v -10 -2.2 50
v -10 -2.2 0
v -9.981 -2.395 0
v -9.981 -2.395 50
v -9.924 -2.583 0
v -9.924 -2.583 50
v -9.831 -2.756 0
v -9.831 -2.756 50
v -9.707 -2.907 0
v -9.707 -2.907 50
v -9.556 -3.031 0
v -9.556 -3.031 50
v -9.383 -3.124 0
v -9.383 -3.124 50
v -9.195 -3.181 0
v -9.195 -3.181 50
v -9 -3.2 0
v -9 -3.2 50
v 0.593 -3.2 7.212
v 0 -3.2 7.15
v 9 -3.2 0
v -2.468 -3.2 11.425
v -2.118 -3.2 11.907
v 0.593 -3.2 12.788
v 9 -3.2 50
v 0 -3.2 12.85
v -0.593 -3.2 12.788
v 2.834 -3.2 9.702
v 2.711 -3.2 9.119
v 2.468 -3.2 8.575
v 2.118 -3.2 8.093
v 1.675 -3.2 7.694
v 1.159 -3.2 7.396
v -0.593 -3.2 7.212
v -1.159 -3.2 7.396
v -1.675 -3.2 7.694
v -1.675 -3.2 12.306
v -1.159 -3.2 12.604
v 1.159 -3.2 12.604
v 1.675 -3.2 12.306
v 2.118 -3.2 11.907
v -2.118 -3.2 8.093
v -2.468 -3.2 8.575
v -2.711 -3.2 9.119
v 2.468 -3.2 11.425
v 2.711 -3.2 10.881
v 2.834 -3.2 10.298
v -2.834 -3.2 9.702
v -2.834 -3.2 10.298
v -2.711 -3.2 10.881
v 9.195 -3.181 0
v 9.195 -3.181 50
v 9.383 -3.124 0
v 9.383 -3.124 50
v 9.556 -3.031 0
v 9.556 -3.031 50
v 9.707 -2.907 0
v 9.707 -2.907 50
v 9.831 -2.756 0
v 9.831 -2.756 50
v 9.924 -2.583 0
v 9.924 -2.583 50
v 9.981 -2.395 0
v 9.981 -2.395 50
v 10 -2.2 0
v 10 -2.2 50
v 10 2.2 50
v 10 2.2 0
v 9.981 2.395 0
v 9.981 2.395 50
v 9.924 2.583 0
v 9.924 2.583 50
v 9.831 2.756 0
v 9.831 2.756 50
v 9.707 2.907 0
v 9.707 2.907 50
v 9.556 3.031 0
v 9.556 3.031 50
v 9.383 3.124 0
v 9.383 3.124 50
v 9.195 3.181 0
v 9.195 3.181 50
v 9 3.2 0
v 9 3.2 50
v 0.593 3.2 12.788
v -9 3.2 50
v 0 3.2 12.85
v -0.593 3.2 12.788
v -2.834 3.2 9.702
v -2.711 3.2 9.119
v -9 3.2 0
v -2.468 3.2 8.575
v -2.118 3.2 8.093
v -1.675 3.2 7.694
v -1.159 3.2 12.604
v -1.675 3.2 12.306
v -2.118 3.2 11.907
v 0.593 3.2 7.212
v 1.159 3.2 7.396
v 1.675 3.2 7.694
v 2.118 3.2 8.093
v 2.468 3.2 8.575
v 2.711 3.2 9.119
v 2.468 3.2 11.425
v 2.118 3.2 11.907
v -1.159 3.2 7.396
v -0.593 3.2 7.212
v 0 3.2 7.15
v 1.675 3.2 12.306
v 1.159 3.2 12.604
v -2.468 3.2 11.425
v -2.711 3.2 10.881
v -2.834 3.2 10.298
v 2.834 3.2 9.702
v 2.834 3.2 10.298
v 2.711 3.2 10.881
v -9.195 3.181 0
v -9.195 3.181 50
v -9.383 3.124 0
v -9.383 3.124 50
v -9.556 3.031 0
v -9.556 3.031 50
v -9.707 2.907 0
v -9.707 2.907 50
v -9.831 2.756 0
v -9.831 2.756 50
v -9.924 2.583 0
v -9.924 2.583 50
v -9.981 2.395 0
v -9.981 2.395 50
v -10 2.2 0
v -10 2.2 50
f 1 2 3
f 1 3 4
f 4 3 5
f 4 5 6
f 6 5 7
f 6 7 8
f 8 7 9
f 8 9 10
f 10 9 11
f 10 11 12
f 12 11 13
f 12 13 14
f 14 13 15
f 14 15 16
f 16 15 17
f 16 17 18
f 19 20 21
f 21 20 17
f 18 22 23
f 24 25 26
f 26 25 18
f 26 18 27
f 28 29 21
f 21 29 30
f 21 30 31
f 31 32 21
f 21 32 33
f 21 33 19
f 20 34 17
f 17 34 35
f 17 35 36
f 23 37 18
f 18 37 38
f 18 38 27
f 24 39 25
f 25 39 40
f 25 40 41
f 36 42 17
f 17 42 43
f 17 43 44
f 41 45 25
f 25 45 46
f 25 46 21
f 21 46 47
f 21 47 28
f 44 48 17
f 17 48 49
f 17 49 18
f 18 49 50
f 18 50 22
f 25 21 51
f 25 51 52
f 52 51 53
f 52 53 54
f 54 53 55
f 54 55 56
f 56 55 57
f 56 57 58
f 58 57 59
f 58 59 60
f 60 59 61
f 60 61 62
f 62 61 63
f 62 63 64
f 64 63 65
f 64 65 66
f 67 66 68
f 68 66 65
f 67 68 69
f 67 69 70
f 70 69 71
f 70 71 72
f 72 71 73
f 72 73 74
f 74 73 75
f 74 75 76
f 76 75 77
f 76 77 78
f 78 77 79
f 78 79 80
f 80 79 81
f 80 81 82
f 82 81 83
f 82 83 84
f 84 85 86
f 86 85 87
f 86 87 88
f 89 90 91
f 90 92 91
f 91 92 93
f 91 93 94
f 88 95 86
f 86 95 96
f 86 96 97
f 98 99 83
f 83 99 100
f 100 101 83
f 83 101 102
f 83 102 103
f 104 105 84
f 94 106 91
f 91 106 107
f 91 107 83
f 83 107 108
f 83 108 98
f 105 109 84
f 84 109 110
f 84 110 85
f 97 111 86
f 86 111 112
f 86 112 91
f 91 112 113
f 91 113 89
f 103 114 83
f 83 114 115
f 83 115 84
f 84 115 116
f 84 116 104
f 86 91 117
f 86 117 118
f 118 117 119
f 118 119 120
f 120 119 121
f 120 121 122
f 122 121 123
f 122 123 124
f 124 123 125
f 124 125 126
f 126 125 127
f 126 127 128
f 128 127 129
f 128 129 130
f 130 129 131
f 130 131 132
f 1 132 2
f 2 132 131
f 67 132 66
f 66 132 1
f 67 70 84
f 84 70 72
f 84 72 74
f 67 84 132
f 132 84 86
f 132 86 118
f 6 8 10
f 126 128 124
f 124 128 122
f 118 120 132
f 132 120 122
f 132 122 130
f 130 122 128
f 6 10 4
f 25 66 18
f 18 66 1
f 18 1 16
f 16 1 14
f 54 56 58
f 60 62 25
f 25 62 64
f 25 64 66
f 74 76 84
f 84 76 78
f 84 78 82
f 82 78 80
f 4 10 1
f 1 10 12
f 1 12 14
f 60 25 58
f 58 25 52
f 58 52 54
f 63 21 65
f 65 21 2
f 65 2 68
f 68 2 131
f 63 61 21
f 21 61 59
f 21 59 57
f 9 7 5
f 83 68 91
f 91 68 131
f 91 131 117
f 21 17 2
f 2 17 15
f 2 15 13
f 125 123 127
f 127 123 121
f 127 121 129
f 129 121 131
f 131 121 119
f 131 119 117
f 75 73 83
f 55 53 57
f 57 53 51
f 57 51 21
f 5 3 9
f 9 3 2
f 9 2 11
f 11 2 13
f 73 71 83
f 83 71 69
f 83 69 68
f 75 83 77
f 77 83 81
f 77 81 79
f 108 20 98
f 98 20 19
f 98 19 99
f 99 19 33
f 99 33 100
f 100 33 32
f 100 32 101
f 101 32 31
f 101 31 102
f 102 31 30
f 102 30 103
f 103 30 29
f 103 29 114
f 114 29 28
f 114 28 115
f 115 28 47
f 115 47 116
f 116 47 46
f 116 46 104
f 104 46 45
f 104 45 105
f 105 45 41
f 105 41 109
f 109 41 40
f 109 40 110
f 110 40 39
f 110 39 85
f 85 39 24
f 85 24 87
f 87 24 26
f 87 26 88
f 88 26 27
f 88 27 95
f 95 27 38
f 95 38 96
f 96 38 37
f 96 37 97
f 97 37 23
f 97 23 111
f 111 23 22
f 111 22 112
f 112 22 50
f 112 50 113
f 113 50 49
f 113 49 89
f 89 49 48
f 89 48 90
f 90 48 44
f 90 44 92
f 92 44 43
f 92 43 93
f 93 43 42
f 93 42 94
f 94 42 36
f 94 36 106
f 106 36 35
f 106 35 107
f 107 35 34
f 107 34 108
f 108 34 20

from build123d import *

# Parameters (mm, degrees)
BOSS_EXTRUDE1_DEPTH = 50
SKETCH2_R           = 2.85
CUT_EXTRUDE1_DEPTH  = 8


with BuildPart() as part:
    # Sketch1 → Boss-Extrude1 (new body)
    with BuildSketch(Plane.XY):
        with BuildLine():
            Line((-9, -3.2), (9, -3.2))
            ThreePointArc((9, -3.2), (9.707106781, -2.907106781), (10, -2.2))
            Line((10, -2.2), (10, 2.2))
            ThreePointArc((10, 2.2), (9.707106781, 2.907106781), (9, 3.2))
            Line((9, 3.2), (-9, 3.2))
            ThreePointArc((-9, 3.2), (-9.707106781, 2.907106781), (-10, 2.2))
            Line((-10, 2.2), (-10, -2.2))
            ThreePointArc((-10, -2.2), (-9.707106781, -2.907106781), (-9, -3.2))
        make_face()
    extrude(amount=BOSS_EXTRUDE1_DEPTH)

    # Sketch2 → Cut-Extrude1 (cut)
    with BuildSketch(Plane(origin=(0, -4, 0), x_dir=(1, 0, 0), z_dir=(0, 1, 0))):
        with Locations(Location((0, -10, 0), (0, 0, 90))):
            Circle(SKETCH2_R)
    extrude(amount=CUT_EXTRUDE1_DEPTH, mode=Mode.SUBTRACT)


solid = part.part
